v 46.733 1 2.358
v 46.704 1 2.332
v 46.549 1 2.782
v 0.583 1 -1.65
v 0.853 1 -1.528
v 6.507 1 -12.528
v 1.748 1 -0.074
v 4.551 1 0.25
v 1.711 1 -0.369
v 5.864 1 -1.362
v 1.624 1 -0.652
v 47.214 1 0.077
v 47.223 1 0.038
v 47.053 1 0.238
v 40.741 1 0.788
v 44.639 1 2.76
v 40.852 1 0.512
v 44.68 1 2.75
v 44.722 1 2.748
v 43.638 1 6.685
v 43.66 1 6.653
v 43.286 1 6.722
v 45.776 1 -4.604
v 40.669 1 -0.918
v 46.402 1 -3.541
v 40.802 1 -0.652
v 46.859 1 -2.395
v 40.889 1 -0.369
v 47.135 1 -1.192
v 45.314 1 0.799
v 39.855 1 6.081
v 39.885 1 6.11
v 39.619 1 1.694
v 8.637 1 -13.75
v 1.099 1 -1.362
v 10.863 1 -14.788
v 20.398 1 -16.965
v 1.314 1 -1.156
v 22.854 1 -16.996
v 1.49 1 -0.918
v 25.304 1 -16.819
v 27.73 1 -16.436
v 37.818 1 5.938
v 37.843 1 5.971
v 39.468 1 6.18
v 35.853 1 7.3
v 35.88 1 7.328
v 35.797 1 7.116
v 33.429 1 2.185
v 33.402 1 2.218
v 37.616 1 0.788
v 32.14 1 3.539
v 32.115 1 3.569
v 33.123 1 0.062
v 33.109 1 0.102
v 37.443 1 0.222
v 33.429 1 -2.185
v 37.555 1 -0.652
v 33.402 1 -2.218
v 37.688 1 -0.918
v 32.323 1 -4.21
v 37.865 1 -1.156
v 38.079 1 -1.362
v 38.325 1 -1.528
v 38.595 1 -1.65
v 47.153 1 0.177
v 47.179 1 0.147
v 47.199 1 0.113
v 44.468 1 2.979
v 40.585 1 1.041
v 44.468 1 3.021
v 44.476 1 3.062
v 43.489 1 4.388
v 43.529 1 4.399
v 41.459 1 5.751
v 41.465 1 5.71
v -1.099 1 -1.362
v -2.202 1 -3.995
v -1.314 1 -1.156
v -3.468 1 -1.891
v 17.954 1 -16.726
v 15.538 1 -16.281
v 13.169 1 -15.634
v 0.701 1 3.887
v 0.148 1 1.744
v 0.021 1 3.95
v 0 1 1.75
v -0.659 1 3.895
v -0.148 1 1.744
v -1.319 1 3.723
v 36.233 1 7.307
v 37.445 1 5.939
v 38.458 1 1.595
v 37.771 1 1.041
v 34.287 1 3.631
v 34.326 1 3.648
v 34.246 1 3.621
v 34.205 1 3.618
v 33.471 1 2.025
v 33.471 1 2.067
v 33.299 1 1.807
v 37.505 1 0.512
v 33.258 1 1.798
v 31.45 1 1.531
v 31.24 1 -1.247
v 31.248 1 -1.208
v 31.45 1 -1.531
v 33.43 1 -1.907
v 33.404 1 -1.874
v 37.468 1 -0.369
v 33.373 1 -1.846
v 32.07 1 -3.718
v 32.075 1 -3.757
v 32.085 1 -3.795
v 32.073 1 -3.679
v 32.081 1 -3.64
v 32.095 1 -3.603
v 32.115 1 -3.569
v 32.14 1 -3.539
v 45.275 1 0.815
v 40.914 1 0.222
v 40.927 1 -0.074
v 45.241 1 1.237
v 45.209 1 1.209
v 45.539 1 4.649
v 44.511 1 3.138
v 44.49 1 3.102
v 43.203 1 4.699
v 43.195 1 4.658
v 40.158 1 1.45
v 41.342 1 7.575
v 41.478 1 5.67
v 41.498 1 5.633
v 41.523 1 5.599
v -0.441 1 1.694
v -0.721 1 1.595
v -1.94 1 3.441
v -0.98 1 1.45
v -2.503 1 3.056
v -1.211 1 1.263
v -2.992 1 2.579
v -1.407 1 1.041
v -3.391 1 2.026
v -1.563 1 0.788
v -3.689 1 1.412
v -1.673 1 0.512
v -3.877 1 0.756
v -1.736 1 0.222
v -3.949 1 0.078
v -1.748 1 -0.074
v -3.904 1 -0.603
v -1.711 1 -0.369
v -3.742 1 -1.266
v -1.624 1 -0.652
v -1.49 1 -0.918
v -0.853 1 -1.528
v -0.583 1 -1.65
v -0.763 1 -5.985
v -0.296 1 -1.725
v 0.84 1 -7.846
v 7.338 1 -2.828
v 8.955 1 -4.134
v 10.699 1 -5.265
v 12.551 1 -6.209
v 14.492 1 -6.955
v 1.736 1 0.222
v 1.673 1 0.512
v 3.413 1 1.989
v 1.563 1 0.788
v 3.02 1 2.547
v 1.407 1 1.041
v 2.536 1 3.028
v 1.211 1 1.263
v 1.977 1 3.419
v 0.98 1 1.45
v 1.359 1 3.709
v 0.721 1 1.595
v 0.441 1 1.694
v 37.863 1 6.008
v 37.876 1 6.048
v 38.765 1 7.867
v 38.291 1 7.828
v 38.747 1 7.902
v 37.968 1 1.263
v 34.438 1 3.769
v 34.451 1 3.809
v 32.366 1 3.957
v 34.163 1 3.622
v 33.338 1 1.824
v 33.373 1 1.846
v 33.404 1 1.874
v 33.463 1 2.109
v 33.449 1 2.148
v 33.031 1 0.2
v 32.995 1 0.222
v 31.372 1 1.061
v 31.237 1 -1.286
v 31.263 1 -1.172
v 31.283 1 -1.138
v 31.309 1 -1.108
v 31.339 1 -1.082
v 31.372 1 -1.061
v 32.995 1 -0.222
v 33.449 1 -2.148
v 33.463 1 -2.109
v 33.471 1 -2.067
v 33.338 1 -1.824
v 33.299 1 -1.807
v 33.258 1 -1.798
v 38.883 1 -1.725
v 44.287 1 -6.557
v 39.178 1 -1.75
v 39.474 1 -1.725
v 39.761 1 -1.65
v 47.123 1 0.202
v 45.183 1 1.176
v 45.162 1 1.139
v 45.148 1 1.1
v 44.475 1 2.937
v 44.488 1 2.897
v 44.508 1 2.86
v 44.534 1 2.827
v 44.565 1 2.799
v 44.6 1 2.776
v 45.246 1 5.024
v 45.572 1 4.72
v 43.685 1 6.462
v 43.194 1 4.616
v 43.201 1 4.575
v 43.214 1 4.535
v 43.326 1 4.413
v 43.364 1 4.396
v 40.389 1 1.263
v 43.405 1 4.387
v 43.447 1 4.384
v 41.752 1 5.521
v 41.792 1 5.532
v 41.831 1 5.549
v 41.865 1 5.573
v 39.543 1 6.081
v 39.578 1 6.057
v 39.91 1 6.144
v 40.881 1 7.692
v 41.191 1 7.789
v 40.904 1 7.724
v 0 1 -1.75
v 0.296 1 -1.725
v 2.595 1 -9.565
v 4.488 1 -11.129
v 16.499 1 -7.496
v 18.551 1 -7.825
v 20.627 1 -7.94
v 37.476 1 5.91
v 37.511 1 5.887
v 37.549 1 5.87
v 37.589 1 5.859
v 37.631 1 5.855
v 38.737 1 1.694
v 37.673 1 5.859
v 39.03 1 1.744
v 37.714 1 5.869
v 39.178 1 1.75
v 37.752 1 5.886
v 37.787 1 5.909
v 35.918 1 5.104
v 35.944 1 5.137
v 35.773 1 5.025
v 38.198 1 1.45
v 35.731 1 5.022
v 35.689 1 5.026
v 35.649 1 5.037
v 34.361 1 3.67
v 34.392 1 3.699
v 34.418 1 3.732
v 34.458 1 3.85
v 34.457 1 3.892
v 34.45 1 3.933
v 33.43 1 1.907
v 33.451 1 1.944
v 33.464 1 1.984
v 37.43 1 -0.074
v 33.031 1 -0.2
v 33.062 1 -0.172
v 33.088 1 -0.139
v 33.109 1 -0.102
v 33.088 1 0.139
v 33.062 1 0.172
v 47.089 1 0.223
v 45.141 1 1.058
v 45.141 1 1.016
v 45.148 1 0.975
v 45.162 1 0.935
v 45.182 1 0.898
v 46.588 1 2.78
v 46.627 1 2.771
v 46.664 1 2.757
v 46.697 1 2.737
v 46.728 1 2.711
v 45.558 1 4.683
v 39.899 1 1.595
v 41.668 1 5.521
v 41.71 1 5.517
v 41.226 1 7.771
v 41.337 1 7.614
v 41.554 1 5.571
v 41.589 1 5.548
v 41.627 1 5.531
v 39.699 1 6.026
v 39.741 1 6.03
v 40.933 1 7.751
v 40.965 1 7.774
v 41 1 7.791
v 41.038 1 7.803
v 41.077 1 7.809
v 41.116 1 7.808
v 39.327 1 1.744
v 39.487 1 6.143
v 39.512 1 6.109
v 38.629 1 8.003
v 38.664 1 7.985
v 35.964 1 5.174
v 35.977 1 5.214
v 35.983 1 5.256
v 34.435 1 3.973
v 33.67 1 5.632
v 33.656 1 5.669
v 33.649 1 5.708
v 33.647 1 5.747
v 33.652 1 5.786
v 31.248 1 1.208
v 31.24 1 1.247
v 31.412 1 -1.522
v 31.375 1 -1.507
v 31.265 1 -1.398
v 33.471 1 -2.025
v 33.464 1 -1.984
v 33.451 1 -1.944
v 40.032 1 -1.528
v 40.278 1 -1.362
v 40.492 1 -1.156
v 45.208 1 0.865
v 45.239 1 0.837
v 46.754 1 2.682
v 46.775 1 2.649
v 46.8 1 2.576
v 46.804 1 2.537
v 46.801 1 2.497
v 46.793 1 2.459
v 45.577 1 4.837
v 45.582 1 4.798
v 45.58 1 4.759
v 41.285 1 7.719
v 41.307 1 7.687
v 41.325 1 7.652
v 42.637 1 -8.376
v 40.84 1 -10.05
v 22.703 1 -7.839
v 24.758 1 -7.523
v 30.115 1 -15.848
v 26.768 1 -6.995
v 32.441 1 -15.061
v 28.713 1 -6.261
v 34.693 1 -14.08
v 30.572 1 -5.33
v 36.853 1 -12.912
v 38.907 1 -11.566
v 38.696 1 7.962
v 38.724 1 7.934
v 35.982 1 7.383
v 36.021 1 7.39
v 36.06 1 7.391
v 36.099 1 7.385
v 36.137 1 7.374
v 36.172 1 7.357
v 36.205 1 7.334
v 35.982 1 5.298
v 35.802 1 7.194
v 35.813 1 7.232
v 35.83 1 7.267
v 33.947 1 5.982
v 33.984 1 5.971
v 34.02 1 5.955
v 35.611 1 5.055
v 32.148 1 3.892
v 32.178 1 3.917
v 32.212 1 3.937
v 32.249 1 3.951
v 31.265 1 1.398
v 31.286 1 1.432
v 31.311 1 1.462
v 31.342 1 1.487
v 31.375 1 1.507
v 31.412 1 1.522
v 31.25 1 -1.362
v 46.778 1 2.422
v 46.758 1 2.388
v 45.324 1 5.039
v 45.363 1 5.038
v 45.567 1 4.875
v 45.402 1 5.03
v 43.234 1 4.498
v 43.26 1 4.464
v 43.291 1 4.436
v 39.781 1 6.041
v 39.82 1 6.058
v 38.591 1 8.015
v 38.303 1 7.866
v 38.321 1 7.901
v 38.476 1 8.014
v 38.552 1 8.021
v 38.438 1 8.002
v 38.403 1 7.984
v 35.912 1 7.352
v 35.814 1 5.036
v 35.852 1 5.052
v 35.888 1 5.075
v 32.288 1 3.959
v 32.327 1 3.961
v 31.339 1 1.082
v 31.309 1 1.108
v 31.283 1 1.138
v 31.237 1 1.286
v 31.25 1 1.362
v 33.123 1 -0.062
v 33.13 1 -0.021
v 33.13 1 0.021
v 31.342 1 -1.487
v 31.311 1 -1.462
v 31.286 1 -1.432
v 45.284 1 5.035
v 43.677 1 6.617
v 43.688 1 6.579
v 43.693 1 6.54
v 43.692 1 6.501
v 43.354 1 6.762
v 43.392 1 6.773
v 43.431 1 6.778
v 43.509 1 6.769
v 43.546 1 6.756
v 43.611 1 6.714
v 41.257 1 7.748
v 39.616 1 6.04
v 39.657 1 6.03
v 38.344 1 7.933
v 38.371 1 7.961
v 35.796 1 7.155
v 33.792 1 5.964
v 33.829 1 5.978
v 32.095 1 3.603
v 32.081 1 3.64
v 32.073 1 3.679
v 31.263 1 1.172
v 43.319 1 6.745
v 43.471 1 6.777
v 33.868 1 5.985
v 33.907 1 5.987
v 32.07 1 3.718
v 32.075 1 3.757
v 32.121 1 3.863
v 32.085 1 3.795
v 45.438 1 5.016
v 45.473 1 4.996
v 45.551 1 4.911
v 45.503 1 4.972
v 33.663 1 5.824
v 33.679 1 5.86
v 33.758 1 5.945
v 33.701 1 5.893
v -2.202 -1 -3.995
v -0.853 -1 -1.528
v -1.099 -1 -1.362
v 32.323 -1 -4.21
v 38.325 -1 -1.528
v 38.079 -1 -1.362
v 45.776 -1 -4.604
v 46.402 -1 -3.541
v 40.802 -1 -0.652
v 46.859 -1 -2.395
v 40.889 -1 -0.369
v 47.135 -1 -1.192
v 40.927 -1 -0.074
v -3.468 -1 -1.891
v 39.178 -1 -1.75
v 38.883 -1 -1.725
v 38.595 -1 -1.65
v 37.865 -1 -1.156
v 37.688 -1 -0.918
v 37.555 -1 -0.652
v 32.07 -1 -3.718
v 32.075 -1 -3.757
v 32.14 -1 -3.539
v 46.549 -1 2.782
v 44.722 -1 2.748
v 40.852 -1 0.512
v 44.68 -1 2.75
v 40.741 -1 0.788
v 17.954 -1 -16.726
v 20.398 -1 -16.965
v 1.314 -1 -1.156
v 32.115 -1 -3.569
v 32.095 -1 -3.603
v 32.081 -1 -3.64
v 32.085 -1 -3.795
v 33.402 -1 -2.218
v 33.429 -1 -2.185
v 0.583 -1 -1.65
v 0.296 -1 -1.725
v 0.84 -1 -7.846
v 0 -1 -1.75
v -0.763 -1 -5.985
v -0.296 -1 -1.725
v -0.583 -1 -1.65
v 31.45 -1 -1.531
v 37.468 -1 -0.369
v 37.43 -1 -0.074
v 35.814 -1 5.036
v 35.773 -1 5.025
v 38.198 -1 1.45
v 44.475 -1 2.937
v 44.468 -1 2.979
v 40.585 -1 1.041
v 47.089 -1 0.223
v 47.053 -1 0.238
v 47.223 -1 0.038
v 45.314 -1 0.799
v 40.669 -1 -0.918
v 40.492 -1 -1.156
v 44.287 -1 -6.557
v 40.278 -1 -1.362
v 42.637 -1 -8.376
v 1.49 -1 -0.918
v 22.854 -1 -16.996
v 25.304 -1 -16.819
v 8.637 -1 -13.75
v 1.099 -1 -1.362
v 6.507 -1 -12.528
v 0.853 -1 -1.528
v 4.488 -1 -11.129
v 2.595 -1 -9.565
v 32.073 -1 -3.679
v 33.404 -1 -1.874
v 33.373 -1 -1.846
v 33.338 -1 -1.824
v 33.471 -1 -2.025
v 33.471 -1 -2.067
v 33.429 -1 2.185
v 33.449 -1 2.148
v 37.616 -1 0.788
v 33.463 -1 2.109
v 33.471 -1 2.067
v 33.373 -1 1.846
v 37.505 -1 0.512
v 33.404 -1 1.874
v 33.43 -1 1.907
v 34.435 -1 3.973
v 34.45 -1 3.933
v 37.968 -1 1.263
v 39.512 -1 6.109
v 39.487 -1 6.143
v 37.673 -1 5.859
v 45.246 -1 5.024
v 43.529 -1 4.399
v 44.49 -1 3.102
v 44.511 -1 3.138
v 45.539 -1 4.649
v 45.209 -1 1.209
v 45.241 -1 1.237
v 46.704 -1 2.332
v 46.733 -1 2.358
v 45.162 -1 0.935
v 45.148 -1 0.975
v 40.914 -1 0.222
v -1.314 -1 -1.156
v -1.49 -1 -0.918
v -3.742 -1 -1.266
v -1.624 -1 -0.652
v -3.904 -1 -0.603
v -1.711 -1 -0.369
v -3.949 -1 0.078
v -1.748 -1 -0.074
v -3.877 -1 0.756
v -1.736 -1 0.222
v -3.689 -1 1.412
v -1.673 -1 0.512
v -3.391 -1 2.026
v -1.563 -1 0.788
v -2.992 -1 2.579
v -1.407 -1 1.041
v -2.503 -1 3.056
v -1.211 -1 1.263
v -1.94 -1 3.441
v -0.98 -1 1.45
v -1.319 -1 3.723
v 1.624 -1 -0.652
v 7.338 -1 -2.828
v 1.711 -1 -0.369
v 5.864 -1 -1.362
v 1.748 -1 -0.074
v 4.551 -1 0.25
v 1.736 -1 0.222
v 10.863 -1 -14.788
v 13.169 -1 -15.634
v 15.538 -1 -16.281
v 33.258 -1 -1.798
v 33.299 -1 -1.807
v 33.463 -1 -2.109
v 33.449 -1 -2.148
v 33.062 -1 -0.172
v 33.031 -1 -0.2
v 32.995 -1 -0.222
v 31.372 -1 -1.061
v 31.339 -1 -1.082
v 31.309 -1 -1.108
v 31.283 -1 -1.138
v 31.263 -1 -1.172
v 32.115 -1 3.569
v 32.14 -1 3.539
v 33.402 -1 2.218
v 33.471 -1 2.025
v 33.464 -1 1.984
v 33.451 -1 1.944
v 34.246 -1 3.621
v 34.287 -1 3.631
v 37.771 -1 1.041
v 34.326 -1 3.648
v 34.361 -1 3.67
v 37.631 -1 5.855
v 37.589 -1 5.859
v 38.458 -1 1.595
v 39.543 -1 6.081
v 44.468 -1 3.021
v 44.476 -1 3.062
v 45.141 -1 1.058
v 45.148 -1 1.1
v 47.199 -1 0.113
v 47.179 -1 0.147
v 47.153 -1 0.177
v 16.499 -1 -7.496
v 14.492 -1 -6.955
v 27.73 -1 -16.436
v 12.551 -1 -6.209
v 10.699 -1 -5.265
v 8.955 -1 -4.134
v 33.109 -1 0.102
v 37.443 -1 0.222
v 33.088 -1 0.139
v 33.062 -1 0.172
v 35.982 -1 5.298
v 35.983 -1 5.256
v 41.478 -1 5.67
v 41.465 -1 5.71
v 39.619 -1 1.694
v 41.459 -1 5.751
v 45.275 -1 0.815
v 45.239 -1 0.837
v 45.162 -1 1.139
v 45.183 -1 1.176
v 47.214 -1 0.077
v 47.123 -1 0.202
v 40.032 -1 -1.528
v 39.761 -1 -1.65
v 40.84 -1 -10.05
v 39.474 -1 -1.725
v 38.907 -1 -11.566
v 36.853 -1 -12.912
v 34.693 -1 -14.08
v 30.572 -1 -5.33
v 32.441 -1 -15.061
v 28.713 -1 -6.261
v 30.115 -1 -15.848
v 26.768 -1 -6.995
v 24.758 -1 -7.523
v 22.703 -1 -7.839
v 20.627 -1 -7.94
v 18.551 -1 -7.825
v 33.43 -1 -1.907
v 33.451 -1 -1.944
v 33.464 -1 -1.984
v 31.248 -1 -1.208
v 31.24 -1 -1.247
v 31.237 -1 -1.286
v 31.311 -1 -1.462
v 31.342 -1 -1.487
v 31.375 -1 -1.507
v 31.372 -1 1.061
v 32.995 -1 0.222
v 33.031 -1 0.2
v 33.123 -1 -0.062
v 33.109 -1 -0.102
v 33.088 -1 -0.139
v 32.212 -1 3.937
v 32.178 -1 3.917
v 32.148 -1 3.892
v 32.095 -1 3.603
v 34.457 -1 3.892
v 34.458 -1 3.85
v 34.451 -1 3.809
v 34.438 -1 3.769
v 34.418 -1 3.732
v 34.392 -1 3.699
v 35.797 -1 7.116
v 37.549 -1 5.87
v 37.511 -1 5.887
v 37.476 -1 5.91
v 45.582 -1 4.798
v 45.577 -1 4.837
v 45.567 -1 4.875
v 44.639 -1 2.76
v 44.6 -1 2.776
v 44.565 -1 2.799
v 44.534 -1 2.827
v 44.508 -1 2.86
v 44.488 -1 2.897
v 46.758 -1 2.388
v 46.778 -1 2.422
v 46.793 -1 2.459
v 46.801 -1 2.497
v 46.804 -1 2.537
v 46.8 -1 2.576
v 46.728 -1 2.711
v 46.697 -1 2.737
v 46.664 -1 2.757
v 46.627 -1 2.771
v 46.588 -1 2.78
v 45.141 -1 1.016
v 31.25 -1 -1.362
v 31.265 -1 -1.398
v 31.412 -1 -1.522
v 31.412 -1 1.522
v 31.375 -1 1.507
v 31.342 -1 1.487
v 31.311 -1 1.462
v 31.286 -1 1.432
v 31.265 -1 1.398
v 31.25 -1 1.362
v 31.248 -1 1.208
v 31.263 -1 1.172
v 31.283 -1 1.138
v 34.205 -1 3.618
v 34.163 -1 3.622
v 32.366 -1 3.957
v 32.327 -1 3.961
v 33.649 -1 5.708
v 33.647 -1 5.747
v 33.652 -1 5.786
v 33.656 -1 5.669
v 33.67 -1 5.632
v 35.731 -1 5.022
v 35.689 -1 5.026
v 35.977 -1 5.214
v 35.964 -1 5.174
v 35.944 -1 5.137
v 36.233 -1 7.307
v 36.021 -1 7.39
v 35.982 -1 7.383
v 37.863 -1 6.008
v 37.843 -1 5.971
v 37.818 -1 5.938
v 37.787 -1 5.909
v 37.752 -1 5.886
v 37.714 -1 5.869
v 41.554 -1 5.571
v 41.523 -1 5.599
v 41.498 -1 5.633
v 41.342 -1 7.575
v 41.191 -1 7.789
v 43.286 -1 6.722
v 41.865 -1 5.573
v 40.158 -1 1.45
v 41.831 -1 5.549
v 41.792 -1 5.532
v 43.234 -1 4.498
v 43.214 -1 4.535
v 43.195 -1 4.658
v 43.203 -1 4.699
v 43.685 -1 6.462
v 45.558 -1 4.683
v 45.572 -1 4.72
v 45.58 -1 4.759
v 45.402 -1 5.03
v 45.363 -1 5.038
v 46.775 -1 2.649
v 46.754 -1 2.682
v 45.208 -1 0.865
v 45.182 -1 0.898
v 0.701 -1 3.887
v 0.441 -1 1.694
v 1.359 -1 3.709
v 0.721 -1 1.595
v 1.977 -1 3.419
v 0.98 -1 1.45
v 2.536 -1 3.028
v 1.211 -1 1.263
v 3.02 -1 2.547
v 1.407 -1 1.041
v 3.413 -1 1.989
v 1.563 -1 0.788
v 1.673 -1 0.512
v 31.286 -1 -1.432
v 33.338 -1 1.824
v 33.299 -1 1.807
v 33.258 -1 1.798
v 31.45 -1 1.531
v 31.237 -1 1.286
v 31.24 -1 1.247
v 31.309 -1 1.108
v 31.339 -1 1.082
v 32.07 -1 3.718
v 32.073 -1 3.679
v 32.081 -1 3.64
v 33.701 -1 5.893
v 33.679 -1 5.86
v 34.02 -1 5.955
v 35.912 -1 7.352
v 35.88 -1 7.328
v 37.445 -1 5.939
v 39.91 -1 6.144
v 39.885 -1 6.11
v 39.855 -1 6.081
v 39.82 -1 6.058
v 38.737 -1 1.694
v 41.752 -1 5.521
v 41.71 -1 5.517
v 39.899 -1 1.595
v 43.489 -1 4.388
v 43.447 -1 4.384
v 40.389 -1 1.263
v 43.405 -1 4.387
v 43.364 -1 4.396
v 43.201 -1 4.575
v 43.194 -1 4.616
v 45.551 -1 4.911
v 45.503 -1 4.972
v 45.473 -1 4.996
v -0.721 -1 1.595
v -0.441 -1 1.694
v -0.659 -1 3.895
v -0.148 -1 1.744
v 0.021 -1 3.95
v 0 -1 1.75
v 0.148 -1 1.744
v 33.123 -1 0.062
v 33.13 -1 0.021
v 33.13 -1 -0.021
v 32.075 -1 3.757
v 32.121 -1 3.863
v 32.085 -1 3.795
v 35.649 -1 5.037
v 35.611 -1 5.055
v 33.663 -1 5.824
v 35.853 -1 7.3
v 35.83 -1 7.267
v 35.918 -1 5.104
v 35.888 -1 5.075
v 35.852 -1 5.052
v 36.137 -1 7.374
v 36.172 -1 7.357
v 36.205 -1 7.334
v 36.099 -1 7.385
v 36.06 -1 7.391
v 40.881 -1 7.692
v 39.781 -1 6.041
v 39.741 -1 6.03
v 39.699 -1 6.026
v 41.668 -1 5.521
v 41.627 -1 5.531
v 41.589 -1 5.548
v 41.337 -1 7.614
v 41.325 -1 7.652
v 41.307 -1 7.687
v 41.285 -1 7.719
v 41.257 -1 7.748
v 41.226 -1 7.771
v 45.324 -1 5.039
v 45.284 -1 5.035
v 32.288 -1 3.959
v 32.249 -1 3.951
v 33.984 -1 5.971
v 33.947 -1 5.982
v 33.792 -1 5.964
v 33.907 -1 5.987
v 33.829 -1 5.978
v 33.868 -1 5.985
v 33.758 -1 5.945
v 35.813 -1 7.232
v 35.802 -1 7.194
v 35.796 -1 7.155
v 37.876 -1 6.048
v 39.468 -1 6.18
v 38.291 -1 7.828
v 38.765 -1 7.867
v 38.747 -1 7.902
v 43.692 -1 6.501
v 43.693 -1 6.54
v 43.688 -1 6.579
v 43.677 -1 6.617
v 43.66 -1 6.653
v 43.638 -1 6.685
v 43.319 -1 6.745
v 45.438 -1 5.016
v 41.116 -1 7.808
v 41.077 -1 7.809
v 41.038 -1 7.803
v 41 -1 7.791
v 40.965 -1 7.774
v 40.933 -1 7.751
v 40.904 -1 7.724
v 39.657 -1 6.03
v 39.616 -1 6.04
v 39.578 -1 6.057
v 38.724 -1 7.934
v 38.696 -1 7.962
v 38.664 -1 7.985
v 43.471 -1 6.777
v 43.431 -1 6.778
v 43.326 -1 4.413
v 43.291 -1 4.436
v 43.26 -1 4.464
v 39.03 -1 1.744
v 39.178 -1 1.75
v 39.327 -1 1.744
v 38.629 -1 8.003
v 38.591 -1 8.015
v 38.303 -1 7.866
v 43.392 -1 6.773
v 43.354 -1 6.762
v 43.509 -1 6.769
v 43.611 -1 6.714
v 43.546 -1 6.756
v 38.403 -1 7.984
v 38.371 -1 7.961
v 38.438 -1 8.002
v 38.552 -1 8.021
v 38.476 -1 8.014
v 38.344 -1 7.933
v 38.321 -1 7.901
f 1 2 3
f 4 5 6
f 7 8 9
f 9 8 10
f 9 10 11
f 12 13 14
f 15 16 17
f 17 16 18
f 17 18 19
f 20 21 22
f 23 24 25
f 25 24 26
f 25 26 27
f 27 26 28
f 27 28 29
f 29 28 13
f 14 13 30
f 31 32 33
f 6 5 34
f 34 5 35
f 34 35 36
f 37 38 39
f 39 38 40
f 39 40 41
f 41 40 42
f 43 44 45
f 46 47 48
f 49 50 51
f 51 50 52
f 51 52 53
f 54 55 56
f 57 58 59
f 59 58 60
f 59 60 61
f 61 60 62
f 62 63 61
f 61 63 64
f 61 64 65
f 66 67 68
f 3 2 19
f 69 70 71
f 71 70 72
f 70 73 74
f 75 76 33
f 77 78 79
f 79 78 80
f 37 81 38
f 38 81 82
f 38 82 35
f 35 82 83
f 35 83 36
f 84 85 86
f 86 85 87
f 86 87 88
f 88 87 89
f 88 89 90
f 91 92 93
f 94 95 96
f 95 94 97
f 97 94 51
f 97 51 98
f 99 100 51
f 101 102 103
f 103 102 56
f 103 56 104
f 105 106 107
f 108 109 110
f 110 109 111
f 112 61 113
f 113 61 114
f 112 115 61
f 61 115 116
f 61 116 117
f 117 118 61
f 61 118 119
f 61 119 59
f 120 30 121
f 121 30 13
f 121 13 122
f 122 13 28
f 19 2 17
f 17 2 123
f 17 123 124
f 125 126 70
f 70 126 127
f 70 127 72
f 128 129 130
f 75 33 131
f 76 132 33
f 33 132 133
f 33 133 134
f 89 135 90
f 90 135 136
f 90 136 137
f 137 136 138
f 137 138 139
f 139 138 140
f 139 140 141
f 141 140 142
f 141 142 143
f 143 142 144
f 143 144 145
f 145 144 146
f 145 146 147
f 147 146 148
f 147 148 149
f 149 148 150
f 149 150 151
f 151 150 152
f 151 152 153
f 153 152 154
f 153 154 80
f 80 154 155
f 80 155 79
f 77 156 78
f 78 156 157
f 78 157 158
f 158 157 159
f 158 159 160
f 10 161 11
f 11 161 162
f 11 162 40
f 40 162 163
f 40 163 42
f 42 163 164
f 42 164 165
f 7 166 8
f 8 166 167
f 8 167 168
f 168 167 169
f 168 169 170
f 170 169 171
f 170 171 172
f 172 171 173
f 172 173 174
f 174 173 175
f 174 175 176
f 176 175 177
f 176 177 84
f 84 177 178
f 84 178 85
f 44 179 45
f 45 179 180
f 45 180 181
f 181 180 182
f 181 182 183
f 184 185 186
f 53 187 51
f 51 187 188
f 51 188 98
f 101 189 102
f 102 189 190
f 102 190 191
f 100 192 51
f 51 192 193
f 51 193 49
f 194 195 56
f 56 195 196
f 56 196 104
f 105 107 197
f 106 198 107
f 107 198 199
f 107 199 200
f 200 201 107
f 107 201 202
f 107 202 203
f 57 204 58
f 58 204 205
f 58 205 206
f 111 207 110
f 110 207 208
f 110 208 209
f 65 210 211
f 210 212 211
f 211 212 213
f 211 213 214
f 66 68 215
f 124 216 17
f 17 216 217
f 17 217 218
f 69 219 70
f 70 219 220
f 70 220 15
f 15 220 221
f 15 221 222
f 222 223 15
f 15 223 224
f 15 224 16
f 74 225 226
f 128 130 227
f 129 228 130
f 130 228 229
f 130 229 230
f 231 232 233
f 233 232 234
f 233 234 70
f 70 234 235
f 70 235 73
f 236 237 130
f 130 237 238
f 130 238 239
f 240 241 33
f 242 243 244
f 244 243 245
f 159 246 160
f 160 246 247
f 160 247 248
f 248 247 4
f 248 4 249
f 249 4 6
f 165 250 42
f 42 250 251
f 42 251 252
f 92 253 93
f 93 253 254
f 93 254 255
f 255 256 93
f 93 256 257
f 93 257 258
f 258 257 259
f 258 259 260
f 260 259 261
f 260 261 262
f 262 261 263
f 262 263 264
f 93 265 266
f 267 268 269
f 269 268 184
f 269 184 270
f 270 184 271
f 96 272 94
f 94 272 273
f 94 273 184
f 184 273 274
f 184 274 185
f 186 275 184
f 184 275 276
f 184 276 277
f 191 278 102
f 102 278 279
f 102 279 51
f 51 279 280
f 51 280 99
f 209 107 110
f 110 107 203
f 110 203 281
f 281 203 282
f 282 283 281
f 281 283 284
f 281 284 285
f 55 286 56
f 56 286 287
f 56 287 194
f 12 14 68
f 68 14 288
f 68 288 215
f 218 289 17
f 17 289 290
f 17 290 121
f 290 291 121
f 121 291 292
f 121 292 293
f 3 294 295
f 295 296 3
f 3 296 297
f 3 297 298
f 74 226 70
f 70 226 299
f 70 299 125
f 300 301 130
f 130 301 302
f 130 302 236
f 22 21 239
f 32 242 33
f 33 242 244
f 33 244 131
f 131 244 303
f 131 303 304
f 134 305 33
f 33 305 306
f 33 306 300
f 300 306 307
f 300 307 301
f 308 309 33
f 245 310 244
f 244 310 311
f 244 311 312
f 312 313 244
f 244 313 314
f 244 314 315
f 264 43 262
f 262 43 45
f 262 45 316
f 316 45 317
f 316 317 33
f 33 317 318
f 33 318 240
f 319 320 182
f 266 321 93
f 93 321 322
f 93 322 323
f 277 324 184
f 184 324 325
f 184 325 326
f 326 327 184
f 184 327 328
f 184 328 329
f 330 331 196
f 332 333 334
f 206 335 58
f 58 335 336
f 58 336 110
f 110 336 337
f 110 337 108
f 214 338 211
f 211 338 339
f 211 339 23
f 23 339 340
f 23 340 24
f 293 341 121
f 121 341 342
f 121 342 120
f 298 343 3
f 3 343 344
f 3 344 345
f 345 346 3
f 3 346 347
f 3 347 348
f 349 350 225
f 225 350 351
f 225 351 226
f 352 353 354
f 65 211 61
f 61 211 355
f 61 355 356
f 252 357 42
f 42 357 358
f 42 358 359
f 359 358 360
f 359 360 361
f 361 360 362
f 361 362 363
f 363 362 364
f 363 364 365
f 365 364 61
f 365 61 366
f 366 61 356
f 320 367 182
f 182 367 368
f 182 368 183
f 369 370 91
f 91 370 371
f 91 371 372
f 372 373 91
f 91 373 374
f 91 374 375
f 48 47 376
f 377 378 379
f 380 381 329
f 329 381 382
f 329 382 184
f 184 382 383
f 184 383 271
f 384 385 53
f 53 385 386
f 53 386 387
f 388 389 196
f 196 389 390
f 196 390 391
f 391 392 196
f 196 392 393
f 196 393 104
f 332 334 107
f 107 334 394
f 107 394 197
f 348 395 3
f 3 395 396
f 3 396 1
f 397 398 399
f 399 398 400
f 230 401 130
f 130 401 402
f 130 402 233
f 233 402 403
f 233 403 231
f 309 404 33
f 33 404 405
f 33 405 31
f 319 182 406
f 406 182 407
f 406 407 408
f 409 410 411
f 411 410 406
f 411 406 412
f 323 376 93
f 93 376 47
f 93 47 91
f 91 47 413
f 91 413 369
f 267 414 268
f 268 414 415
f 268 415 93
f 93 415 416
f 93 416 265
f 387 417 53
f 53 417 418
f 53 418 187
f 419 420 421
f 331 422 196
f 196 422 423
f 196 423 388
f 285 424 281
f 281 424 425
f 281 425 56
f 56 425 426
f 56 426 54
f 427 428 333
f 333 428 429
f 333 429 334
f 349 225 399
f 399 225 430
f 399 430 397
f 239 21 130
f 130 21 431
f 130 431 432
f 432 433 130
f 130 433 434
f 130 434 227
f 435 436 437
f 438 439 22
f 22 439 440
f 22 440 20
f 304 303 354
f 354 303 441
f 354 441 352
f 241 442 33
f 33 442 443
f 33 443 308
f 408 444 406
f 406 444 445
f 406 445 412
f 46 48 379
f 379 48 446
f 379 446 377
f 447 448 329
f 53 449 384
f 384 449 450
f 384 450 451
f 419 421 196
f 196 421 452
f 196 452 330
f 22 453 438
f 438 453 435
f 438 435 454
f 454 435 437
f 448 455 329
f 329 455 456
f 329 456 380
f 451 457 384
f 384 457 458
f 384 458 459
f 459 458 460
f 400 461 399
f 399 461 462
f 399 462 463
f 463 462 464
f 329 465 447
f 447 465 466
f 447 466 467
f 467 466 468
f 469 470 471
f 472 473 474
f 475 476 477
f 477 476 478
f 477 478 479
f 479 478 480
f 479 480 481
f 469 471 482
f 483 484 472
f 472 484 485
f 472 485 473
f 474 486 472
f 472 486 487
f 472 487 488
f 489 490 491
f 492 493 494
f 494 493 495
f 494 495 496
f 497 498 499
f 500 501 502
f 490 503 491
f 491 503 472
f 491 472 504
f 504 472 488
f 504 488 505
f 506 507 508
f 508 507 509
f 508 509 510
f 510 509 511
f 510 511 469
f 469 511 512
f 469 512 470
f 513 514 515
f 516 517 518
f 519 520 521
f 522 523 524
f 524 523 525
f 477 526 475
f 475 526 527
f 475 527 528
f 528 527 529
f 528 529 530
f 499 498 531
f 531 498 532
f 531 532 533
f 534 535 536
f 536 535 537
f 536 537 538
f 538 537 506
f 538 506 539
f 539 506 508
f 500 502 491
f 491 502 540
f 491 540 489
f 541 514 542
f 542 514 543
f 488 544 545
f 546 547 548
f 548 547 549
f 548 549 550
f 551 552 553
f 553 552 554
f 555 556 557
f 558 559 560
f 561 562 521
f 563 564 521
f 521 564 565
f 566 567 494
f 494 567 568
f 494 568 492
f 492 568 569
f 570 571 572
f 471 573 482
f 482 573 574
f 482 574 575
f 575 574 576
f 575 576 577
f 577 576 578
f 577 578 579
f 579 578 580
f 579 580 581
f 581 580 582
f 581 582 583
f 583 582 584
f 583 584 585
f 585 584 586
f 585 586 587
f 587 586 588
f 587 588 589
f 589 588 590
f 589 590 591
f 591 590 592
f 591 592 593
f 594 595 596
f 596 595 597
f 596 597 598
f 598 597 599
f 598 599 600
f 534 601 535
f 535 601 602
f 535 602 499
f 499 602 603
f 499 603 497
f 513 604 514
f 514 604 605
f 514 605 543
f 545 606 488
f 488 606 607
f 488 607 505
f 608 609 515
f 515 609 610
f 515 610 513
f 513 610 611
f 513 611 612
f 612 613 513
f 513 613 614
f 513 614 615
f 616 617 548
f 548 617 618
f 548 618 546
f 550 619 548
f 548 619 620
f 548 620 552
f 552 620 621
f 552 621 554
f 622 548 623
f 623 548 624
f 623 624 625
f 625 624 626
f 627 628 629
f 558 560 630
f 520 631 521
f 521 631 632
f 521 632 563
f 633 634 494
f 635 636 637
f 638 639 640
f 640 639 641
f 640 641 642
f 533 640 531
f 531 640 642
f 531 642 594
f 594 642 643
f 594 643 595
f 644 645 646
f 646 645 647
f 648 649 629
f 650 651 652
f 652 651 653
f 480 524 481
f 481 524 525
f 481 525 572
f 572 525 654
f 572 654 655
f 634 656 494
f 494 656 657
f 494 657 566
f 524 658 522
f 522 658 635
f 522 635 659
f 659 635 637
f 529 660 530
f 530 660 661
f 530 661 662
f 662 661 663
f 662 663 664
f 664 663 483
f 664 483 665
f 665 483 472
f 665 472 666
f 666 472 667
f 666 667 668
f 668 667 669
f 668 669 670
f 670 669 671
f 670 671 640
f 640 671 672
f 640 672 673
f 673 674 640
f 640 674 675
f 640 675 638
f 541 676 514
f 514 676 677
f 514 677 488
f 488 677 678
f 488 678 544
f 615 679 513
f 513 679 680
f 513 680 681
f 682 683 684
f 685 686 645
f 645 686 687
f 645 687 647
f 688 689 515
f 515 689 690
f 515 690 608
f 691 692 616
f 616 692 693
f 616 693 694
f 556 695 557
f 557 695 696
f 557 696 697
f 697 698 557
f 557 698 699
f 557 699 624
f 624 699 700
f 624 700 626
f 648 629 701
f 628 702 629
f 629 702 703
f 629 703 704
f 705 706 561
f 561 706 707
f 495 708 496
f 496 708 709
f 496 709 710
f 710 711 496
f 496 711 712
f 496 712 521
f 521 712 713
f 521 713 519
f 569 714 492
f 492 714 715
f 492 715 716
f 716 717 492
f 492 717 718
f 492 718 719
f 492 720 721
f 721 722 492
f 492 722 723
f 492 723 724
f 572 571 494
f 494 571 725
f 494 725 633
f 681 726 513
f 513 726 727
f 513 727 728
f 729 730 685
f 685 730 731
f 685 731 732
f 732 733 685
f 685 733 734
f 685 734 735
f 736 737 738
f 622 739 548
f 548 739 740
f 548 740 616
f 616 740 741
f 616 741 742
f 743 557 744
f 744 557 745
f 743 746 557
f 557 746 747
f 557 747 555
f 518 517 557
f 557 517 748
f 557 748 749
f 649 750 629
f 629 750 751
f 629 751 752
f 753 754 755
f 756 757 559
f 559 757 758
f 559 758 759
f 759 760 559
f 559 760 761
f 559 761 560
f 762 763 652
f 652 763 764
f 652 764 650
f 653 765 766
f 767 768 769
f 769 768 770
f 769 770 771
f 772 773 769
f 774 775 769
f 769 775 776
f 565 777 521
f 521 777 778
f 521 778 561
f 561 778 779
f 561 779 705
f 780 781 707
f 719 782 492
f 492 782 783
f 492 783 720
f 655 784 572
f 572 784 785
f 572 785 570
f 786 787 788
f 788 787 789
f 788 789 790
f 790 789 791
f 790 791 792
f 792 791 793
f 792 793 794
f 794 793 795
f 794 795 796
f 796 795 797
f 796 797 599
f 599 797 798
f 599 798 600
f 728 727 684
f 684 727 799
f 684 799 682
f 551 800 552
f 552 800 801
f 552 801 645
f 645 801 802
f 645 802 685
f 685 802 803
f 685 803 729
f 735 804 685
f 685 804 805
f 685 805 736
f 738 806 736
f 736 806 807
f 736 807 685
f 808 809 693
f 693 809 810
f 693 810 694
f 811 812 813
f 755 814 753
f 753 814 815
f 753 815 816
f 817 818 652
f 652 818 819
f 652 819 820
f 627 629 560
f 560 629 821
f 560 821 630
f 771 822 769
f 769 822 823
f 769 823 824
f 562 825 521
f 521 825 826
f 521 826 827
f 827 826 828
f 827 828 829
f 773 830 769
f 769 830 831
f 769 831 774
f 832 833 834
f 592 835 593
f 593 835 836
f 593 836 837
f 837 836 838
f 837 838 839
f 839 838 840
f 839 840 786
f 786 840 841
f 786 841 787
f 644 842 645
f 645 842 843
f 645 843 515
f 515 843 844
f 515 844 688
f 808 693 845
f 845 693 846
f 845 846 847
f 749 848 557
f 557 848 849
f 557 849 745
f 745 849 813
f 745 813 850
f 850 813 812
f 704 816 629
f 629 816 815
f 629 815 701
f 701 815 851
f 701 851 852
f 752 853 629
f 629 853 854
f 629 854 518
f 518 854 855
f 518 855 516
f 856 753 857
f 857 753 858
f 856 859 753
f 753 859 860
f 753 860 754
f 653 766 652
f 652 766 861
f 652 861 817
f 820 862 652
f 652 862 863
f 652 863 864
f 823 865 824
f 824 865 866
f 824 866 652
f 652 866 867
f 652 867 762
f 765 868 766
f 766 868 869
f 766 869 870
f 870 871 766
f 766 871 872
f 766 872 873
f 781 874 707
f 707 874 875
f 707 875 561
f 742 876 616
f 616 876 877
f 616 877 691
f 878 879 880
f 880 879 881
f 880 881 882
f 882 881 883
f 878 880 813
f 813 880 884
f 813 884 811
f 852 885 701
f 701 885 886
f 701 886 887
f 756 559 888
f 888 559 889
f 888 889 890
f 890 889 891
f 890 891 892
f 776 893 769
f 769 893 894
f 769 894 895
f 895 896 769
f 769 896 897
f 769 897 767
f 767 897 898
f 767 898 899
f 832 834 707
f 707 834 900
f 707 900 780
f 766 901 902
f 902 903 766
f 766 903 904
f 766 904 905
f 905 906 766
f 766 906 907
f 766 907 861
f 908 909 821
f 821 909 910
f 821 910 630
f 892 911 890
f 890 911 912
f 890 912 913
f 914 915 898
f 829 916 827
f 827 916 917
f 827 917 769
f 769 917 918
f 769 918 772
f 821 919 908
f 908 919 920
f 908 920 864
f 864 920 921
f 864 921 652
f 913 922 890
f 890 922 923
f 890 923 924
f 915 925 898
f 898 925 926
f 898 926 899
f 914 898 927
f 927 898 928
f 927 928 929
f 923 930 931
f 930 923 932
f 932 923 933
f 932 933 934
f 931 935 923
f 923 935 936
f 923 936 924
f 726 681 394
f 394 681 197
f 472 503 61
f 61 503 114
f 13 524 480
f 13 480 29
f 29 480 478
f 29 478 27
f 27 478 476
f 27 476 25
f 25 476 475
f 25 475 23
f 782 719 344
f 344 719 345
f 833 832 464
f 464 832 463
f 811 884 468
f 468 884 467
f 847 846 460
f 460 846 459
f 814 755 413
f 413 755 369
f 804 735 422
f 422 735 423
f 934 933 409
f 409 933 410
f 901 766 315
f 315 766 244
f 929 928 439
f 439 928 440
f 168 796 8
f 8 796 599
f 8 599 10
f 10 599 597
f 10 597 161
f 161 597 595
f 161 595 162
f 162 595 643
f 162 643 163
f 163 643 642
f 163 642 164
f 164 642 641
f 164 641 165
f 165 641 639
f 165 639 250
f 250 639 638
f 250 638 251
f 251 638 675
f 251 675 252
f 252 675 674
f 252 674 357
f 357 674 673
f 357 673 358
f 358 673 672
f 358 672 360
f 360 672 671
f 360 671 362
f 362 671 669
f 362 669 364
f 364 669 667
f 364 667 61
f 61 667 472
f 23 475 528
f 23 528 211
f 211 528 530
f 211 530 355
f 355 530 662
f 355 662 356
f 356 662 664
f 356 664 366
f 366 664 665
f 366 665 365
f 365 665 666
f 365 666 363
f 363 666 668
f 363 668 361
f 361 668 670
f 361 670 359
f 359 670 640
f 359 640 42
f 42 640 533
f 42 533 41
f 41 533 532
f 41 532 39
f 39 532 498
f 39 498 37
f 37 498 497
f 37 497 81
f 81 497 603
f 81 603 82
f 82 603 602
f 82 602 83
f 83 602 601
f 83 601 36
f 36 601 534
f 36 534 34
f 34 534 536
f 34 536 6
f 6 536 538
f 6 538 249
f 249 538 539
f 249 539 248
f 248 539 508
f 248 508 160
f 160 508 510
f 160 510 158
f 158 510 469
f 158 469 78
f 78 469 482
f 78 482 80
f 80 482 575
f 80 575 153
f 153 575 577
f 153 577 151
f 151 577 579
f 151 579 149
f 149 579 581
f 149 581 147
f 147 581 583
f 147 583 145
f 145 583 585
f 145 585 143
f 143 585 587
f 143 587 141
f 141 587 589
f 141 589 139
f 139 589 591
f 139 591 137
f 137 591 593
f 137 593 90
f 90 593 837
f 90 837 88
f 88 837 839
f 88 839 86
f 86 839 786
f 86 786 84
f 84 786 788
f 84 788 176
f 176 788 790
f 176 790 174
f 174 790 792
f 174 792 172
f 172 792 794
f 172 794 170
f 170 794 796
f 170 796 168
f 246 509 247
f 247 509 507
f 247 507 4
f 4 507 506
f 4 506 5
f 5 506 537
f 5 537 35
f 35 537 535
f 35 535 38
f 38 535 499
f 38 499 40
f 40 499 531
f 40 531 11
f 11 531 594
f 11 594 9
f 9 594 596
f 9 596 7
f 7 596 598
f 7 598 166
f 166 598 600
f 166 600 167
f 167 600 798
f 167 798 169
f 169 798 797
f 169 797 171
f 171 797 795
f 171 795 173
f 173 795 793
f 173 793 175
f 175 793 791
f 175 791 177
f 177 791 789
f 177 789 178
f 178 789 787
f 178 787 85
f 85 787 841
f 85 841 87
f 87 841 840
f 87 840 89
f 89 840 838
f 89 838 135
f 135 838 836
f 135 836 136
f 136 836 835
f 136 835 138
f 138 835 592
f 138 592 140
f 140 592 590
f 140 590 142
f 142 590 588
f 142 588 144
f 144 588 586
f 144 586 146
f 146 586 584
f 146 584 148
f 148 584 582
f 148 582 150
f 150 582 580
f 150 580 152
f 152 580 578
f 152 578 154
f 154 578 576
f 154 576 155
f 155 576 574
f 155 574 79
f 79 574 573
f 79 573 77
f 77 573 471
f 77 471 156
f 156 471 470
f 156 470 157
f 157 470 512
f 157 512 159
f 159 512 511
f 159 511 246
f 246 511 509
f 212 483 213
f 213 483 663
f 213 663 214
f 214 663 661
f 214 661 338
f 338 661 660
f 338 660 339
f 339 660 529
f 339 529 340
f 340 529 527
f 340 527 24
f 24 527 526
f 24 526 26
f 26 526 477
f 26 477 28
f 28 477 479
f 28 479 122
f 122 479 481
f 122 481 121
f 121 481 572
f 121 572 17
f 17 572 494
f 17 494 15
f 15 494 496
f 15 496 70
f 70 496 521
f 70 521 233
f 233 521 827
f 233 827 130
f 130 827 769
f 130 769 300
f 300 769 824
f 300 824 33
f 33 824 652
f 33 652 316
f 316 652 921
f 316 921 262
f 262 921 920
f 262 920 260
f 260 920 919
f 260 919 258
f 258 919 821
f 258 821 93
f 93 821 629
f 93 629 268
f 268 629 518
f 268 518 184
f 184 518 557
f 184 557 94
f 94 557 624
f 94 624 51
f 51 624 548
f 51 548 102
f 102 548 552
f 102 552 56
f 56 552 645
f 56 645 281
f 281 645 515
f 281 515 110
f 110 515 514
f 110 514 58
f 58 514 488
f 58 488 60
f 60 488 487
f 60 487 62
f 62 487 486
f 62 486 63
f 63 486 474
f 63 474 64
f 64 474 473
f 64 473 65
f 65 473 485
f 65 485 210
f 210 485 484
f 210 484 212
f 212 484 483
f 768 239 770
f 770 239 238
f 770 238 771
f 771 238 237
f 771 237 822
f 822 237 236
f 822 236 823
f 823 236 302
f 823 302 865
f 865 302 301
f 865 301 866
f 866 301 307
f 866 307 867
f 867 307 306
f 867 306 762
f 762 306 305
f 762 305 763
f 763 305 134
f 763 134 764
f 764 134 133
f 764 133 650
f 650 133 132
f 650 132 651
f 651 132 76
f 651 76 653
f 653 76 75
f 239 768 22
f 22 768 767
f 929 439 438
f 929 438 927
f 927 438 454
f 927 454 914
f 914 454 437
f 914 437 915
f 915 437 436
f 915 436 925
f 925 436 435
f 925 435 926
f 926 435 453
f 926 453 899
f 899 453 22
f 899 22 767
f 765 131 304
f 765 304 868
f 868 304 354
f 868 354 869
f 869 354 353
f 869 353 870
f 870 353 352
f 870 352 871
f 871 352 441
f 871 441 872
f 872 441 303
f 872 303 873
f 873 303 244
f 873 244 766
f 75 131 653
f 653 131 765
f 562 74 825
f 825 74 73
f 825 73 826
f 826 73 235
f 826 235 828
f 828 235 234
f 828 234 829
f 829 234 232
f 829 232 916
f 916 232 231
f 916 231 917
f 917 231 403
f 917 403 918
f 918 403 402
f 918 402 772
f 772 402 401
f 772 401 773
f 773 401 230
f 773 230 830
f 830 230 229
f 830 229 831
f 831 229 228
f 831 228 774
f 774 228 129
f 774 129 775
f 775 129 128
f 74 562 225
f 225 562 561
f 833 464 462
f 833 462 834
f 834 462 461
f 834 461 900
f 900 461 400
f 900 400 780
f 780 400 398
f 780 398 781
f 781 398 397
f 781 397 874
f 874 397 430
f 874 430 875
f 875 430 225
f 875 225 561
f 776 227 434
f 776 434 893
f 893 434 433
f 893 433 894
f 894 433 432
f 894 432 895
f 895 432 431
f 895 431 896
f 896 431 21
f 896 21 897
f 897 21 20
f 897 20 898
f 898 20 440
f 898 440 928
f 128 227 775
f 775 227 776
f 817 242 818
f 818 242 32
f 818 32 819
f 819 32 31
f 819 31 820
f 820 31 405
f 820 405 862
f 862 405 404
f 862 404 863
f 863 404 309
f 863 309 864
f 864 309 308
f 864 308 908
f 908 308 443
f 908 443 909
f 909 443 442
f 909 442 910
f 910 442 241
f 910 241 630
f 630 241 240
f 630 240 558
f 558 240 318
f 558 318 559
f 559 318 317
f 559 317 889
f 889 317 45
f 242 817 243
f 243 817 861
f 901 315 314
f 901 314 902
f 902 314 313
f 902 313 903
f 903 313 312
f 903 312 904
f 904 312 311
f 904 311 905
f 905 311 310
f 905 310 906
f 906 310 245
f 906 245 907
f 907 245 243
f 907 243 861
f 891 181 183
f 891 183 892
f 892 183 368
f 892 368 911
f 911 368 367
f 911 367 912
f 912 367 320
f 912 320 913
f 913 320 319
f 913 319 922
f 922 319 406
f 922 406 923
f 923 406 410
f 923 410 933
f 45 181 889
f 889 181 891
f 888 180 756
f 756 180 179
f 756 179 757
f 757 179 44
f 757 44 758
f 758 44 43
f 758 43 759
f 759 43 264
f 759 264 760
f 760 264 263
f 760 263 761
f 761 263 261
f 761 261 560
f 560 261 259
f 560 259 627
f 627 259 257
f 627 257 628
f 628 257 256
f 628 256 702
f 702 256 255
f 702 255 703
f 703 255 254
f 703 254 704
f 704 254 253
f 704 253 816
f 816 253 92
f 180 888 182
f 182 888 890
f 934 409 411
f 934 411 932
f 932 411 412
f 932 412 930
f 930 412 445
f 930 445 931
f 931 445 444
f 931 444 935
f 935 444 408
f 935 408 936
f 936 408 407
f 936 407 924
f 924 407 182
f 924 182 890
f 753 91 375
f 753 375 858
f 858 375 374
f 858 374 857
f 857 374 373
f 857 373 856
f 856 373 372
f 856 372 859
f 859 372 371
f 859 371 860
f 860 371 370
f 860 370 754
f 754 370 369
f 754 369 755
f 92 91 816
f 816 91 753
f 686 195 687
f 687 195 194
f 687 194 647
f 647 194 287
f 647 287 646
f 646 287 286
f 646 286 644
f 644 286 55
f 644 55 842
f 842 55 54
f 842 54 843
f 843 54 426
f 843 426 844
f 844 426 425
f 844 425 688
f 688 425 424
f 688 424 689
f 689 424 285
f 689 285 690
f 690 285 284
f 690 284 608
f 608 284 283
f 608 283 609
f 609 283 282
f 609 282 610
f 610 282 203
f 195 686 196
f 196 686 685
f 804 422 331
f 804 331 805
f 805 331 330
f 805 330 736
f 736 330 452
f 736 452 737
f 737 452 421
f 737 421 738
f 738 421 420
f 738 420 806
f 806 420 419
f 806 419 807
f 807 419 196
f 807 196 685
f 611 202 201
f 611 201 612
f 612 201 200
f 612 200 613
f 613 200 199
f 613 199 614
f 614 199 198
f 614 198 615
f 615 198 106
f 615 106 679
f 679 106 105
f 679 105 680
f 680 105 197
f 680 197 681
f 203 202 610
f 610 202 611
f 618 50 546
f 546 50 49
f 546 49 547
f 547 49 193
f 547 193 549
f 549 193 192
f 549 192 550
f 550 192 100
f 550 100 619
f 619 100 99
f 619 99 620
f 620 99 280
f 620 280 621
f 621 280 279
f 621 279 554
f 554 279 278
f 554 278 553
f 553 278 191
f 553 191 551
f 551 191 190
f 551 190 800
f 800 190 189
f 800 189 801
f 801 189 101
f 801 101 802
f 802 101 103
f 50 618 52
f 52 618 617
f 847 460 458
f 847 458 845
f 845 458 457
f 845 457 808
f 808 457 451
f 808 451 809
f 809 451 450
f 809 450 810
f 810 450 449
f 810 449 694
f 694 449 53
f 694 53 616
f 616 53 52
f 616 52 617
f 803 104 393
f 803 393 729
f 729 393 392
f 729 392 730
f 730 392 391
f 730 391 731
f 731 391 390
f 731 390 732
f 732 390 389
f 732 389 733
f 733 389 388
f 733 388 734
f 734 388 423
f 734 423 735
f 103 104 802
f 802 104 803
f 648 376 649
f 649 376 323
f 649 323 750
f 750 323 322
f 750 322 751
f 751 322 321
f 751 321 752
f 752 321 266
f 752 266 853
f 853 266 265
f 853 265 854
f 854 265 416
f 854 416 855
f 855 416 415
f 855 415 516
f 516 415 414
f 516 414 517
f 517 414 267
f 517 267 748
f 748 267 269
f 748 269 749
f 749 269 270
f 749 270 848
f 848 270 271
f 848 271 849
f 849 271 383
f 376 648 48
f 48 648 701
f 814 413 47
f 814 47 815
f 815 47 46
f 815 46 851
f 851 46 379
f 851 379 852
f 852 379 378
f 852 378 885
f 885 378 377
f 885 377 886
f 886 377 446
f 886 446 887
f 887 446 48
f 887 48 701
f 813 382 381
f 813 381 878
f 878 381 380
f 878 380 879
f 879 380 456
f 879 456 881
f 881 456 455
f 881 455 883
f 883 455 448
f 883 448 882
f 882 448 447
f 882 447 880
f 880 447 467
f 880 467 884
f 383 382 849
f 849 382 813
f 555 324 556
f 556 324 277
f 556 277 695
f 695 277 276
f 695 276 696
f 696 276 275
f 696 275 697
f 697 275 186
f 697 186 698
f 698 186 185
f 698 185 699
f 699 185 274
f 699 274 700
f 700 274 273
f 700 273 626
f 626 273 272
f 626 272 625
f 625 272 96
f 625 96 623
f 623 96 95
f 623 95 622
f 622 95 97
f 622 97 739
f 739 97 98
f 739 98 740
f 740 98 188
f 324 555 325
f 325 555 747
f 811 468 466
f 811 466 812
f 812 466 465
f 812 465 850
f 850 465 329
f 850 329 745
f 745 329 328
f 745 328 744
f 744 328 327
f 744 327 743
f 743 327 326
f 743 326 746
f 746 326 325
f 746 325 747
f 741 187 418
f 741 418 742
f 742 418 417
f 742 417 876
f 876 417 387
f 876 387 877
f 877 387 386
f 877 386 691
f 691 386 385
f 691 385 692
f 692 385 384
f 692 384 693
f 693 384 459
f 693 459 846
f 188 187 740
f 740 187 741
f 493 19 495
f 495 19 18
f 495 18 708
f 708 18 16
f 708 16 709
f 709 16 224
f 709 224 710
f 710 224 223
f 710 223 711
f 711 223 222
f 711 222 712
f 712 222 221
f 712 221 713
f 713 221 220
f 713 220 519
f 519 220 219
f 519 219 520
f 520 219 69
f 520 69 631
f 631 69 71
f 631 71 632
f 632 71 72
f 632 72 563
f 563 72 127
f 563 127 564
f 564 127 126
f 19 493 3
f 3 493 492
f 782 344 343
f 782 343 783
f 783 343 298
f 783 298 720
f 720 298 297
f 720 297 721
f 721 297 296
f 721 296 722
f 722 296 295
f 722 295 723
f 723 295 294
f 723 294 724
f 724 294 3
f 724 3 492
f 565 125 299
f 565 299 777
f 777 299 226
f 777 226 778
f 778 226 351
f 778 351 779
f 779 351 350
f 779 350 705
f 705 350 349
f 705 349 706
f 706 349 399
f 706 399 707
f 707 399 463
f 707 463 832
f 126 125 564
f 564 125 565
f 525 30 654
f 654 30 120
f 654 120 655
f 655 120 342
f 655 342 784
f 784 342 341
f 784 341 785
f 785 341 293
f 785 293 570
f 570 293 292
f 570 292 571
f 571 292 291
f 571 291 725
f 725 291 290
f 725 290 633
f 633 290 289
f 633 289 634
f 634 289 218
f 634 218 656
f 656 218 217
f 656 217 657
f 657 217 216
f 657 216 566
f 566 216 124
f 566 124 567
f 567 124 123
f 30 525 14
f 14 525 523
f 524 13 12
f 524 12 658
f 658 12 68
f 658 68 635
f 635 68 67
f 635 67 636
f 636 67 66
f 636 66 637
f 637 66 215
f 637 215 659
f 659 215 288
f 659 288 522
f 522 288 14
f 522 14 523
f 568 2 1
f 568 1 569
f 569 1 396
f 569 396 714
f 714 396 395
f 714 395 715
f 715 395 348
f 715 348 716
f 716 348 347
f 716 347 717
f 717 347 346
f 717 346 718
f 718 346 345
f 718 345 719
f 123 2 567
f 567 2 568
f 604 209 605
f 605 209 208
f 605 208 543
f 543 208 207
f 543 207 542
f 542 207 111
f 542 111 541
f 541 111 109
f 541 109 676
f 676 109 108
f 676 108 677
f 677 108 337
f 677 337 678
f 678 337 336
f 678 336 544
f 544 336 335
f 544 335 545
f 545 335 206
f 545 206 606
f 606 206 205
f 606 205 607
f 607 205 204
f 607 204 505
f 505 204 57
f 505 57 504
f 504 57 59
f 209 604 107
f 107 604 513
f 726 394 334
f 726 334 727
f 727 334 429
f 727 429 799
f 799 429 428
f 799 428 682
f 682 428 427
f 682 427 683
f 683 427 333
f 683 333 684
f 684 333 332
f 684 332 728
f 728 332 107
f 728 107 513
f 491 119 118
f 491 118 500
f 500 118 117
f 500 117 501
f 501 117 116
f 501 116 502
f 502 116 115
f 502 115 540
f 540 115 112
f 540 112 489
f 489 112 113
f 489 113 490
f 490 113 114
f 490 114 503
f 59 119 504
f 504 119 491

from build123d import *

# Parameters (mm, degrees)
SKETCH1_R           = 1.75
BOSS_EXTRUDE1_DEPTH = 1
CUT_EXTRUDE1_DEPTH  = 10


with BuildPart() as part:
    # Sketch1 → Boss-Extrude1 (new, symmetric)
    with BuildSketch(Plane(origin=(0, 0, 0), x_dir=(1, 0, 0), z_dir=(0, 1, 0))):
        with BuildLine():
            ThreePointArc((-3.468031679, 1.890834809), (-1.940098765, -3.440714574), (3.412697713, -1.988968154))
            ThreePointArc((3.412697713, -1.988968154), (16.498779461, 7.495751106), (32.323208611, 4.210499669))
            ThreePointArc((32.323208611, 4.210499669), (39.413417069, -8.041566659), (45.776010747, 4.603653267))
            ThreePointArc((45.776010747, 4.603653267), (20.398296529, 16.964851371), (-3.468031679, 1.890834809))
        make_face()
        with Locations(Location((0, 0, 0), (0, 0, 270))):
            Circle(SKETCH1_R, mode=Mode.SUBTRACT)
        with Locations(Location((39.178405, 0, 0), (0, 0, 270))):
            Circle(SKETCH1_R, mode=Mode.SUBTRACT)
    extrude(amount=BOSS_EXTRUDE1_DEPTH, both=True)

    # Sketch3 → Cut-Extrude1 (cut)
    with BuildSketch(Plane(origin=(0, 1, 0), x_dir=(1, 0, 0), z_dir=(0, 1, 0))):
        with BuildLine():
            ThreePointArc((32.084811852, 3.795123352), (31.56930529, 2.612207227), (31.24955028, 1.36208951))
            ThreePointArc((31.24955028, 1.36208951), (31.326059207, 1.474902663), (31.450375944, 1.53081127))
            Line((31.450375944, 1.53081127), (33.258253826, 1.797598333))
            ThreePointArc((33.258253826, 1.797598333), (33.381527847, 1.852635734), (33.458211092, 1.963745049))
            ThreePointArc((33.458211092, 1.963745049), (33.46594199, 2.098525734), (33.402466138, 2.217674448))
            Line((33.402466138, 2.217674448), (32.139660471, 3.538628505))
            ThreePointArc((32.139660471, 3.538628505), (32.075896875, 3.659105169), (32.084811852, 3.795123352))
        make_face()
        with BuildLine():
            ThreePointArc((31.236887758, 1.286207175), (31.133405, 0), (31.236887758, -1.286207175))
            ThreePointArc((31.236887758, -1.286207175), (31.272620849, -1.154664142), (31.372048268, -1.061419239))
            Line((31.372048268, -1.061419239), (32.995344721, -0.222070447))
            ThreePointArc((32.995344721, -0.222070447), (33.094068801, -0.129988115), (33.130520001, 0))
            ThreePointArc((33.130520001, 0), (33.094068801, 0.129988115), (32.995344721, 0.222070447))
            Line((32.995344721, 0.222070447), (31.372048268, 1.061419239))
            ThreePointArc((31.372048268, 1.061419239), (31.272620849, 1.154664142), (31.236887758, 1.286207175))
        make_face()
        with BuildLine():
            ThreePointArc((31.24955028, -1.36208951), (31.569305291, -2.61220723), (32.084811854, -3.795123356))
            ThreePointArc((32.084811854, -3.795123356), (32.075896875, -3.659105171), (32.139660471, -3.538628505))
            Line((32.139660471, -3.538628505), (33.402466138, -2.217674449))
            ThreePointArc((33.402466138, -2.217674449), (33.46594199, -2.098525734), (33.458211092, -1.963745049))
            ThreePointArc((33.458211092, -1.963745049), (33.381527847, -1.852635735), (33.258253826, -1.797598333))
            Line((33.258253826, -1.797598333), (31.450375944, -1.53081127))
            ThreePointArc((31.450375944, -1.53081127), (31.326059207, -1.474902664), (31.24955028, -1.36208951))
        make_face()
        with BuildLine():
            ThreePointArc((32.12142724, -3.862782663), (32.829769602, -4.941341274), (33.701436836, -5.892779033))
            ThreePointArc((33.701436836, -5.892779033), (33.648839863, -5.767025378), (33.670029862, -5.632372464))
            Line((33.670029862, -5.632372464), (34.435500154, -3.972959013))
            ThreePointArc((34.435500154, -3.972959013), (34.456849185, -3.839655529), (34.405773951, -3.714687852))
            ThreePointArc((34.405773951, -3.714687852), (34.29716848, -3.634497755), (34.16270317, -3.622469441))
            Line((34.16270317, -3.622469441), (32.366155482, -3.957154626))
            ThreePointArc((32.366155482, -3.957154626), (32.230421073, -3.94464088), (32.12142724, -3.862782663))
        make_face()
        with BuildLine():
            ThreePointArc((33.758037242, -5.944883377), (34.778207068, -6.735004318), (35.911576302, -7.351860666))
            ThreePointArc((35.911576302, -7.351860666), (35.820997033, -7.249998901), (35.79731717, -7.115761472))
            Line((35.79731717, -7.115761472), (35.982501503, -5.297711821))
            ThreePointArc((35.982501503, -5.297711821), (35.959410215, -5.164699069), (35.870525439, -5.063086586))
            ThreePointArc((35.870525439, -5.063086586), (35.741766831, -5.022505549), (35.610681635, -5.054789777))
            Line((35.610681635, -5.054789777), (34.020147957, -5.954678876))
            ThreePointArc((34.020147957, -5.954678876), (33.887704808, -5.98691605), (33.758037242, -5.944883377))
        make_face()
        with BuildLine():
            ThreePointArc((35.982028195, -7.382763732), (37.203474256, -7.798825139), (38.475727347, -8.014254121))
            ThreePointArc((38.475727347, -8.014254121), (38.356981452, -7.947322547), (38.290997808, -7.828047312))
            Line((38.290997808, -7.828047312), (37.875828586, -6.048375351))
            ThreePointArc((37.875828586, -6.048375351), (37.810799277, -5.930067325), (37.693737005, -5.862821327))
            ThreePointArc((37.693737005, -5.862821327), (37.558778252, -5.866246934), (37.445278285, -5.939345207))
            Line((37.445278285, -5.939345207), (36.233117622, -7.306921274))
            ThreePointArc((36.233117622, -7.306921274), (36.118318001, -7.380415969), (35.982028195, -7.382763732))
        make_face()
        with BuildLine():
            ThreePointArc((38.552396173, -8.020607081), (39.842755834, -8.017522246), (41.116024419, -7.808178788))
            ThreePointArc((41.116024419, -7.808178788), (40.981979858, -7.78343048), (40.880842784, -7.692042761))
            Line((40.880842784, -7.692042761), (39.910310035, -6.143603561))
            ThreePointArc((39.910310035, -6.143603561), (39.810389641, -6.052820773), (39.677835385, -6.027228406))
            ThreePointArc((39.677835385, -6.027228406), (39.551301362, -6.07428944), (39.467686107, -6.180280426))
            Line((39.467686107, -6.180280426), (38.765254875, -7.867345373))
            ThreePointArc((38.765254875, -7.867345373), (38.680539103, -7.974133298), (38.552396173, -8.020607081))
        make_face()
        with BuildLine():
            ThreePointArc((41.19060192, -7.7892932), (42.410044691, -7.367396413), (43.546350362, -6.755966128))
            ThreePointArc((43.546350362, -6.755966128), (43.411532943, -6.776082949), (43.286202211, -6.722486022))
            Line((43.286202211, -6.722486022), (41.865478217, -5.573076998))
            ThreePointArc((41.865478217, -5.573076998), (41.741494662, -5.519657171), (41.607812733, -5.538491765))
            ThreePointArc((41.607812733, -5.538491765), (41.503415366, -5.624088433), (41.458745833, -5.751486363))
            Line((41.458745833, -5.751486363), (41.342163355, -7.575220526))
            ThreePointArc((41.342163355, -7.575220526), (41.296711701, -7.703729554), (41.19060192, -7.7892932))
        make_face()
        with BuildLine():
            ThreePointArc((43.610754909, -6.713888537), (44.627135244, -5.918898861), (45.503341649, -4.971639708))
            ThreePointArc((45.503341649, -4.971639708), (45.382360931, -5.034441688), (45.246418071, -5.024443613))
            Line((45.246418071, -5.024443613), (43.529460322, -4.398621067))
            ThreePointArc((43.529460322, -4.398621067), (43.394849148, -4.388353068), (43.274526058, -4.449573603))
            ThreePointArc((43.274526058, -4.449573603), (43.20357842, -4.564430177), (43.202695246, -4.69942951))
            Line((43.202695246, -4.69942951), (43.684595043, -6.462202994))
            ThreePointArc((43.684595043, -6.462202994), (43.683332898, -6.598507176), (43.610754909, -6.713888537))
        make_face()
        with BuildLine():
            ThreePointArc((45.55059401, -4.910929874), (46.253771328, -3.828996777), (46.77492791, -2.648558983))
            ThreePointArc((46.77492791, -2.648558983), (46.68089403, -2.747240553), (46.549070559, -2.781924776))
            Line((46.549070559, -2.781924776), (44.721938068, -2.747506292))
            ThreePointArc((44.721938068, -2.747506292), (44.591286486, -2.781502818), (44.497361108, -2.878475099))
            ThreePointArc((44.497361108, -2.878475099), (44.467551477, -3.010145087), (44.510550368, -3.13811655))
            Line((44.510550368, -3.13811655), (45.538711119, -4.648905496))
            ThreePointArc((45.538711119, -4.648905496), (45.581775256, -4.778234159), (45.55059401, -4.910929874))
        make_face()
        with BuildLine():
            Line((47.052997067, -0.237941224), (45.313687991, -0.798656578))
            ThreePointArc((45.313687991, -0.798656578), (45.201154125, -0.873233578), (45.143804731, -0.995449154))
            ThreePointArc((45.143804731, -0.995449154), (45.158363444, -1.12966407), (45.240584802, -1.236739969))
            Line((45.240584802, -1.236739969), (46.703589337, -2.331826952))
            ThreePointArc((46.703589337, -2.331826952), (46.786313088, -2.440165329), (46.799907556, -2.575795758))
            ThreePointArc((46.799907556, -2.575795758), (47.113681686, -1.324163479), (47.223313041, -0.038465795))
            ThreePointArc((47.223313041, -0.038465795), (47.16641603, -0.162333277), (47.052997067, -0.237941224))
        make_face()
    extrude(amount=-CUT_EXTRUDE1_DEPTH, mode=Mode.SUBTRACT)


solid = part.part
